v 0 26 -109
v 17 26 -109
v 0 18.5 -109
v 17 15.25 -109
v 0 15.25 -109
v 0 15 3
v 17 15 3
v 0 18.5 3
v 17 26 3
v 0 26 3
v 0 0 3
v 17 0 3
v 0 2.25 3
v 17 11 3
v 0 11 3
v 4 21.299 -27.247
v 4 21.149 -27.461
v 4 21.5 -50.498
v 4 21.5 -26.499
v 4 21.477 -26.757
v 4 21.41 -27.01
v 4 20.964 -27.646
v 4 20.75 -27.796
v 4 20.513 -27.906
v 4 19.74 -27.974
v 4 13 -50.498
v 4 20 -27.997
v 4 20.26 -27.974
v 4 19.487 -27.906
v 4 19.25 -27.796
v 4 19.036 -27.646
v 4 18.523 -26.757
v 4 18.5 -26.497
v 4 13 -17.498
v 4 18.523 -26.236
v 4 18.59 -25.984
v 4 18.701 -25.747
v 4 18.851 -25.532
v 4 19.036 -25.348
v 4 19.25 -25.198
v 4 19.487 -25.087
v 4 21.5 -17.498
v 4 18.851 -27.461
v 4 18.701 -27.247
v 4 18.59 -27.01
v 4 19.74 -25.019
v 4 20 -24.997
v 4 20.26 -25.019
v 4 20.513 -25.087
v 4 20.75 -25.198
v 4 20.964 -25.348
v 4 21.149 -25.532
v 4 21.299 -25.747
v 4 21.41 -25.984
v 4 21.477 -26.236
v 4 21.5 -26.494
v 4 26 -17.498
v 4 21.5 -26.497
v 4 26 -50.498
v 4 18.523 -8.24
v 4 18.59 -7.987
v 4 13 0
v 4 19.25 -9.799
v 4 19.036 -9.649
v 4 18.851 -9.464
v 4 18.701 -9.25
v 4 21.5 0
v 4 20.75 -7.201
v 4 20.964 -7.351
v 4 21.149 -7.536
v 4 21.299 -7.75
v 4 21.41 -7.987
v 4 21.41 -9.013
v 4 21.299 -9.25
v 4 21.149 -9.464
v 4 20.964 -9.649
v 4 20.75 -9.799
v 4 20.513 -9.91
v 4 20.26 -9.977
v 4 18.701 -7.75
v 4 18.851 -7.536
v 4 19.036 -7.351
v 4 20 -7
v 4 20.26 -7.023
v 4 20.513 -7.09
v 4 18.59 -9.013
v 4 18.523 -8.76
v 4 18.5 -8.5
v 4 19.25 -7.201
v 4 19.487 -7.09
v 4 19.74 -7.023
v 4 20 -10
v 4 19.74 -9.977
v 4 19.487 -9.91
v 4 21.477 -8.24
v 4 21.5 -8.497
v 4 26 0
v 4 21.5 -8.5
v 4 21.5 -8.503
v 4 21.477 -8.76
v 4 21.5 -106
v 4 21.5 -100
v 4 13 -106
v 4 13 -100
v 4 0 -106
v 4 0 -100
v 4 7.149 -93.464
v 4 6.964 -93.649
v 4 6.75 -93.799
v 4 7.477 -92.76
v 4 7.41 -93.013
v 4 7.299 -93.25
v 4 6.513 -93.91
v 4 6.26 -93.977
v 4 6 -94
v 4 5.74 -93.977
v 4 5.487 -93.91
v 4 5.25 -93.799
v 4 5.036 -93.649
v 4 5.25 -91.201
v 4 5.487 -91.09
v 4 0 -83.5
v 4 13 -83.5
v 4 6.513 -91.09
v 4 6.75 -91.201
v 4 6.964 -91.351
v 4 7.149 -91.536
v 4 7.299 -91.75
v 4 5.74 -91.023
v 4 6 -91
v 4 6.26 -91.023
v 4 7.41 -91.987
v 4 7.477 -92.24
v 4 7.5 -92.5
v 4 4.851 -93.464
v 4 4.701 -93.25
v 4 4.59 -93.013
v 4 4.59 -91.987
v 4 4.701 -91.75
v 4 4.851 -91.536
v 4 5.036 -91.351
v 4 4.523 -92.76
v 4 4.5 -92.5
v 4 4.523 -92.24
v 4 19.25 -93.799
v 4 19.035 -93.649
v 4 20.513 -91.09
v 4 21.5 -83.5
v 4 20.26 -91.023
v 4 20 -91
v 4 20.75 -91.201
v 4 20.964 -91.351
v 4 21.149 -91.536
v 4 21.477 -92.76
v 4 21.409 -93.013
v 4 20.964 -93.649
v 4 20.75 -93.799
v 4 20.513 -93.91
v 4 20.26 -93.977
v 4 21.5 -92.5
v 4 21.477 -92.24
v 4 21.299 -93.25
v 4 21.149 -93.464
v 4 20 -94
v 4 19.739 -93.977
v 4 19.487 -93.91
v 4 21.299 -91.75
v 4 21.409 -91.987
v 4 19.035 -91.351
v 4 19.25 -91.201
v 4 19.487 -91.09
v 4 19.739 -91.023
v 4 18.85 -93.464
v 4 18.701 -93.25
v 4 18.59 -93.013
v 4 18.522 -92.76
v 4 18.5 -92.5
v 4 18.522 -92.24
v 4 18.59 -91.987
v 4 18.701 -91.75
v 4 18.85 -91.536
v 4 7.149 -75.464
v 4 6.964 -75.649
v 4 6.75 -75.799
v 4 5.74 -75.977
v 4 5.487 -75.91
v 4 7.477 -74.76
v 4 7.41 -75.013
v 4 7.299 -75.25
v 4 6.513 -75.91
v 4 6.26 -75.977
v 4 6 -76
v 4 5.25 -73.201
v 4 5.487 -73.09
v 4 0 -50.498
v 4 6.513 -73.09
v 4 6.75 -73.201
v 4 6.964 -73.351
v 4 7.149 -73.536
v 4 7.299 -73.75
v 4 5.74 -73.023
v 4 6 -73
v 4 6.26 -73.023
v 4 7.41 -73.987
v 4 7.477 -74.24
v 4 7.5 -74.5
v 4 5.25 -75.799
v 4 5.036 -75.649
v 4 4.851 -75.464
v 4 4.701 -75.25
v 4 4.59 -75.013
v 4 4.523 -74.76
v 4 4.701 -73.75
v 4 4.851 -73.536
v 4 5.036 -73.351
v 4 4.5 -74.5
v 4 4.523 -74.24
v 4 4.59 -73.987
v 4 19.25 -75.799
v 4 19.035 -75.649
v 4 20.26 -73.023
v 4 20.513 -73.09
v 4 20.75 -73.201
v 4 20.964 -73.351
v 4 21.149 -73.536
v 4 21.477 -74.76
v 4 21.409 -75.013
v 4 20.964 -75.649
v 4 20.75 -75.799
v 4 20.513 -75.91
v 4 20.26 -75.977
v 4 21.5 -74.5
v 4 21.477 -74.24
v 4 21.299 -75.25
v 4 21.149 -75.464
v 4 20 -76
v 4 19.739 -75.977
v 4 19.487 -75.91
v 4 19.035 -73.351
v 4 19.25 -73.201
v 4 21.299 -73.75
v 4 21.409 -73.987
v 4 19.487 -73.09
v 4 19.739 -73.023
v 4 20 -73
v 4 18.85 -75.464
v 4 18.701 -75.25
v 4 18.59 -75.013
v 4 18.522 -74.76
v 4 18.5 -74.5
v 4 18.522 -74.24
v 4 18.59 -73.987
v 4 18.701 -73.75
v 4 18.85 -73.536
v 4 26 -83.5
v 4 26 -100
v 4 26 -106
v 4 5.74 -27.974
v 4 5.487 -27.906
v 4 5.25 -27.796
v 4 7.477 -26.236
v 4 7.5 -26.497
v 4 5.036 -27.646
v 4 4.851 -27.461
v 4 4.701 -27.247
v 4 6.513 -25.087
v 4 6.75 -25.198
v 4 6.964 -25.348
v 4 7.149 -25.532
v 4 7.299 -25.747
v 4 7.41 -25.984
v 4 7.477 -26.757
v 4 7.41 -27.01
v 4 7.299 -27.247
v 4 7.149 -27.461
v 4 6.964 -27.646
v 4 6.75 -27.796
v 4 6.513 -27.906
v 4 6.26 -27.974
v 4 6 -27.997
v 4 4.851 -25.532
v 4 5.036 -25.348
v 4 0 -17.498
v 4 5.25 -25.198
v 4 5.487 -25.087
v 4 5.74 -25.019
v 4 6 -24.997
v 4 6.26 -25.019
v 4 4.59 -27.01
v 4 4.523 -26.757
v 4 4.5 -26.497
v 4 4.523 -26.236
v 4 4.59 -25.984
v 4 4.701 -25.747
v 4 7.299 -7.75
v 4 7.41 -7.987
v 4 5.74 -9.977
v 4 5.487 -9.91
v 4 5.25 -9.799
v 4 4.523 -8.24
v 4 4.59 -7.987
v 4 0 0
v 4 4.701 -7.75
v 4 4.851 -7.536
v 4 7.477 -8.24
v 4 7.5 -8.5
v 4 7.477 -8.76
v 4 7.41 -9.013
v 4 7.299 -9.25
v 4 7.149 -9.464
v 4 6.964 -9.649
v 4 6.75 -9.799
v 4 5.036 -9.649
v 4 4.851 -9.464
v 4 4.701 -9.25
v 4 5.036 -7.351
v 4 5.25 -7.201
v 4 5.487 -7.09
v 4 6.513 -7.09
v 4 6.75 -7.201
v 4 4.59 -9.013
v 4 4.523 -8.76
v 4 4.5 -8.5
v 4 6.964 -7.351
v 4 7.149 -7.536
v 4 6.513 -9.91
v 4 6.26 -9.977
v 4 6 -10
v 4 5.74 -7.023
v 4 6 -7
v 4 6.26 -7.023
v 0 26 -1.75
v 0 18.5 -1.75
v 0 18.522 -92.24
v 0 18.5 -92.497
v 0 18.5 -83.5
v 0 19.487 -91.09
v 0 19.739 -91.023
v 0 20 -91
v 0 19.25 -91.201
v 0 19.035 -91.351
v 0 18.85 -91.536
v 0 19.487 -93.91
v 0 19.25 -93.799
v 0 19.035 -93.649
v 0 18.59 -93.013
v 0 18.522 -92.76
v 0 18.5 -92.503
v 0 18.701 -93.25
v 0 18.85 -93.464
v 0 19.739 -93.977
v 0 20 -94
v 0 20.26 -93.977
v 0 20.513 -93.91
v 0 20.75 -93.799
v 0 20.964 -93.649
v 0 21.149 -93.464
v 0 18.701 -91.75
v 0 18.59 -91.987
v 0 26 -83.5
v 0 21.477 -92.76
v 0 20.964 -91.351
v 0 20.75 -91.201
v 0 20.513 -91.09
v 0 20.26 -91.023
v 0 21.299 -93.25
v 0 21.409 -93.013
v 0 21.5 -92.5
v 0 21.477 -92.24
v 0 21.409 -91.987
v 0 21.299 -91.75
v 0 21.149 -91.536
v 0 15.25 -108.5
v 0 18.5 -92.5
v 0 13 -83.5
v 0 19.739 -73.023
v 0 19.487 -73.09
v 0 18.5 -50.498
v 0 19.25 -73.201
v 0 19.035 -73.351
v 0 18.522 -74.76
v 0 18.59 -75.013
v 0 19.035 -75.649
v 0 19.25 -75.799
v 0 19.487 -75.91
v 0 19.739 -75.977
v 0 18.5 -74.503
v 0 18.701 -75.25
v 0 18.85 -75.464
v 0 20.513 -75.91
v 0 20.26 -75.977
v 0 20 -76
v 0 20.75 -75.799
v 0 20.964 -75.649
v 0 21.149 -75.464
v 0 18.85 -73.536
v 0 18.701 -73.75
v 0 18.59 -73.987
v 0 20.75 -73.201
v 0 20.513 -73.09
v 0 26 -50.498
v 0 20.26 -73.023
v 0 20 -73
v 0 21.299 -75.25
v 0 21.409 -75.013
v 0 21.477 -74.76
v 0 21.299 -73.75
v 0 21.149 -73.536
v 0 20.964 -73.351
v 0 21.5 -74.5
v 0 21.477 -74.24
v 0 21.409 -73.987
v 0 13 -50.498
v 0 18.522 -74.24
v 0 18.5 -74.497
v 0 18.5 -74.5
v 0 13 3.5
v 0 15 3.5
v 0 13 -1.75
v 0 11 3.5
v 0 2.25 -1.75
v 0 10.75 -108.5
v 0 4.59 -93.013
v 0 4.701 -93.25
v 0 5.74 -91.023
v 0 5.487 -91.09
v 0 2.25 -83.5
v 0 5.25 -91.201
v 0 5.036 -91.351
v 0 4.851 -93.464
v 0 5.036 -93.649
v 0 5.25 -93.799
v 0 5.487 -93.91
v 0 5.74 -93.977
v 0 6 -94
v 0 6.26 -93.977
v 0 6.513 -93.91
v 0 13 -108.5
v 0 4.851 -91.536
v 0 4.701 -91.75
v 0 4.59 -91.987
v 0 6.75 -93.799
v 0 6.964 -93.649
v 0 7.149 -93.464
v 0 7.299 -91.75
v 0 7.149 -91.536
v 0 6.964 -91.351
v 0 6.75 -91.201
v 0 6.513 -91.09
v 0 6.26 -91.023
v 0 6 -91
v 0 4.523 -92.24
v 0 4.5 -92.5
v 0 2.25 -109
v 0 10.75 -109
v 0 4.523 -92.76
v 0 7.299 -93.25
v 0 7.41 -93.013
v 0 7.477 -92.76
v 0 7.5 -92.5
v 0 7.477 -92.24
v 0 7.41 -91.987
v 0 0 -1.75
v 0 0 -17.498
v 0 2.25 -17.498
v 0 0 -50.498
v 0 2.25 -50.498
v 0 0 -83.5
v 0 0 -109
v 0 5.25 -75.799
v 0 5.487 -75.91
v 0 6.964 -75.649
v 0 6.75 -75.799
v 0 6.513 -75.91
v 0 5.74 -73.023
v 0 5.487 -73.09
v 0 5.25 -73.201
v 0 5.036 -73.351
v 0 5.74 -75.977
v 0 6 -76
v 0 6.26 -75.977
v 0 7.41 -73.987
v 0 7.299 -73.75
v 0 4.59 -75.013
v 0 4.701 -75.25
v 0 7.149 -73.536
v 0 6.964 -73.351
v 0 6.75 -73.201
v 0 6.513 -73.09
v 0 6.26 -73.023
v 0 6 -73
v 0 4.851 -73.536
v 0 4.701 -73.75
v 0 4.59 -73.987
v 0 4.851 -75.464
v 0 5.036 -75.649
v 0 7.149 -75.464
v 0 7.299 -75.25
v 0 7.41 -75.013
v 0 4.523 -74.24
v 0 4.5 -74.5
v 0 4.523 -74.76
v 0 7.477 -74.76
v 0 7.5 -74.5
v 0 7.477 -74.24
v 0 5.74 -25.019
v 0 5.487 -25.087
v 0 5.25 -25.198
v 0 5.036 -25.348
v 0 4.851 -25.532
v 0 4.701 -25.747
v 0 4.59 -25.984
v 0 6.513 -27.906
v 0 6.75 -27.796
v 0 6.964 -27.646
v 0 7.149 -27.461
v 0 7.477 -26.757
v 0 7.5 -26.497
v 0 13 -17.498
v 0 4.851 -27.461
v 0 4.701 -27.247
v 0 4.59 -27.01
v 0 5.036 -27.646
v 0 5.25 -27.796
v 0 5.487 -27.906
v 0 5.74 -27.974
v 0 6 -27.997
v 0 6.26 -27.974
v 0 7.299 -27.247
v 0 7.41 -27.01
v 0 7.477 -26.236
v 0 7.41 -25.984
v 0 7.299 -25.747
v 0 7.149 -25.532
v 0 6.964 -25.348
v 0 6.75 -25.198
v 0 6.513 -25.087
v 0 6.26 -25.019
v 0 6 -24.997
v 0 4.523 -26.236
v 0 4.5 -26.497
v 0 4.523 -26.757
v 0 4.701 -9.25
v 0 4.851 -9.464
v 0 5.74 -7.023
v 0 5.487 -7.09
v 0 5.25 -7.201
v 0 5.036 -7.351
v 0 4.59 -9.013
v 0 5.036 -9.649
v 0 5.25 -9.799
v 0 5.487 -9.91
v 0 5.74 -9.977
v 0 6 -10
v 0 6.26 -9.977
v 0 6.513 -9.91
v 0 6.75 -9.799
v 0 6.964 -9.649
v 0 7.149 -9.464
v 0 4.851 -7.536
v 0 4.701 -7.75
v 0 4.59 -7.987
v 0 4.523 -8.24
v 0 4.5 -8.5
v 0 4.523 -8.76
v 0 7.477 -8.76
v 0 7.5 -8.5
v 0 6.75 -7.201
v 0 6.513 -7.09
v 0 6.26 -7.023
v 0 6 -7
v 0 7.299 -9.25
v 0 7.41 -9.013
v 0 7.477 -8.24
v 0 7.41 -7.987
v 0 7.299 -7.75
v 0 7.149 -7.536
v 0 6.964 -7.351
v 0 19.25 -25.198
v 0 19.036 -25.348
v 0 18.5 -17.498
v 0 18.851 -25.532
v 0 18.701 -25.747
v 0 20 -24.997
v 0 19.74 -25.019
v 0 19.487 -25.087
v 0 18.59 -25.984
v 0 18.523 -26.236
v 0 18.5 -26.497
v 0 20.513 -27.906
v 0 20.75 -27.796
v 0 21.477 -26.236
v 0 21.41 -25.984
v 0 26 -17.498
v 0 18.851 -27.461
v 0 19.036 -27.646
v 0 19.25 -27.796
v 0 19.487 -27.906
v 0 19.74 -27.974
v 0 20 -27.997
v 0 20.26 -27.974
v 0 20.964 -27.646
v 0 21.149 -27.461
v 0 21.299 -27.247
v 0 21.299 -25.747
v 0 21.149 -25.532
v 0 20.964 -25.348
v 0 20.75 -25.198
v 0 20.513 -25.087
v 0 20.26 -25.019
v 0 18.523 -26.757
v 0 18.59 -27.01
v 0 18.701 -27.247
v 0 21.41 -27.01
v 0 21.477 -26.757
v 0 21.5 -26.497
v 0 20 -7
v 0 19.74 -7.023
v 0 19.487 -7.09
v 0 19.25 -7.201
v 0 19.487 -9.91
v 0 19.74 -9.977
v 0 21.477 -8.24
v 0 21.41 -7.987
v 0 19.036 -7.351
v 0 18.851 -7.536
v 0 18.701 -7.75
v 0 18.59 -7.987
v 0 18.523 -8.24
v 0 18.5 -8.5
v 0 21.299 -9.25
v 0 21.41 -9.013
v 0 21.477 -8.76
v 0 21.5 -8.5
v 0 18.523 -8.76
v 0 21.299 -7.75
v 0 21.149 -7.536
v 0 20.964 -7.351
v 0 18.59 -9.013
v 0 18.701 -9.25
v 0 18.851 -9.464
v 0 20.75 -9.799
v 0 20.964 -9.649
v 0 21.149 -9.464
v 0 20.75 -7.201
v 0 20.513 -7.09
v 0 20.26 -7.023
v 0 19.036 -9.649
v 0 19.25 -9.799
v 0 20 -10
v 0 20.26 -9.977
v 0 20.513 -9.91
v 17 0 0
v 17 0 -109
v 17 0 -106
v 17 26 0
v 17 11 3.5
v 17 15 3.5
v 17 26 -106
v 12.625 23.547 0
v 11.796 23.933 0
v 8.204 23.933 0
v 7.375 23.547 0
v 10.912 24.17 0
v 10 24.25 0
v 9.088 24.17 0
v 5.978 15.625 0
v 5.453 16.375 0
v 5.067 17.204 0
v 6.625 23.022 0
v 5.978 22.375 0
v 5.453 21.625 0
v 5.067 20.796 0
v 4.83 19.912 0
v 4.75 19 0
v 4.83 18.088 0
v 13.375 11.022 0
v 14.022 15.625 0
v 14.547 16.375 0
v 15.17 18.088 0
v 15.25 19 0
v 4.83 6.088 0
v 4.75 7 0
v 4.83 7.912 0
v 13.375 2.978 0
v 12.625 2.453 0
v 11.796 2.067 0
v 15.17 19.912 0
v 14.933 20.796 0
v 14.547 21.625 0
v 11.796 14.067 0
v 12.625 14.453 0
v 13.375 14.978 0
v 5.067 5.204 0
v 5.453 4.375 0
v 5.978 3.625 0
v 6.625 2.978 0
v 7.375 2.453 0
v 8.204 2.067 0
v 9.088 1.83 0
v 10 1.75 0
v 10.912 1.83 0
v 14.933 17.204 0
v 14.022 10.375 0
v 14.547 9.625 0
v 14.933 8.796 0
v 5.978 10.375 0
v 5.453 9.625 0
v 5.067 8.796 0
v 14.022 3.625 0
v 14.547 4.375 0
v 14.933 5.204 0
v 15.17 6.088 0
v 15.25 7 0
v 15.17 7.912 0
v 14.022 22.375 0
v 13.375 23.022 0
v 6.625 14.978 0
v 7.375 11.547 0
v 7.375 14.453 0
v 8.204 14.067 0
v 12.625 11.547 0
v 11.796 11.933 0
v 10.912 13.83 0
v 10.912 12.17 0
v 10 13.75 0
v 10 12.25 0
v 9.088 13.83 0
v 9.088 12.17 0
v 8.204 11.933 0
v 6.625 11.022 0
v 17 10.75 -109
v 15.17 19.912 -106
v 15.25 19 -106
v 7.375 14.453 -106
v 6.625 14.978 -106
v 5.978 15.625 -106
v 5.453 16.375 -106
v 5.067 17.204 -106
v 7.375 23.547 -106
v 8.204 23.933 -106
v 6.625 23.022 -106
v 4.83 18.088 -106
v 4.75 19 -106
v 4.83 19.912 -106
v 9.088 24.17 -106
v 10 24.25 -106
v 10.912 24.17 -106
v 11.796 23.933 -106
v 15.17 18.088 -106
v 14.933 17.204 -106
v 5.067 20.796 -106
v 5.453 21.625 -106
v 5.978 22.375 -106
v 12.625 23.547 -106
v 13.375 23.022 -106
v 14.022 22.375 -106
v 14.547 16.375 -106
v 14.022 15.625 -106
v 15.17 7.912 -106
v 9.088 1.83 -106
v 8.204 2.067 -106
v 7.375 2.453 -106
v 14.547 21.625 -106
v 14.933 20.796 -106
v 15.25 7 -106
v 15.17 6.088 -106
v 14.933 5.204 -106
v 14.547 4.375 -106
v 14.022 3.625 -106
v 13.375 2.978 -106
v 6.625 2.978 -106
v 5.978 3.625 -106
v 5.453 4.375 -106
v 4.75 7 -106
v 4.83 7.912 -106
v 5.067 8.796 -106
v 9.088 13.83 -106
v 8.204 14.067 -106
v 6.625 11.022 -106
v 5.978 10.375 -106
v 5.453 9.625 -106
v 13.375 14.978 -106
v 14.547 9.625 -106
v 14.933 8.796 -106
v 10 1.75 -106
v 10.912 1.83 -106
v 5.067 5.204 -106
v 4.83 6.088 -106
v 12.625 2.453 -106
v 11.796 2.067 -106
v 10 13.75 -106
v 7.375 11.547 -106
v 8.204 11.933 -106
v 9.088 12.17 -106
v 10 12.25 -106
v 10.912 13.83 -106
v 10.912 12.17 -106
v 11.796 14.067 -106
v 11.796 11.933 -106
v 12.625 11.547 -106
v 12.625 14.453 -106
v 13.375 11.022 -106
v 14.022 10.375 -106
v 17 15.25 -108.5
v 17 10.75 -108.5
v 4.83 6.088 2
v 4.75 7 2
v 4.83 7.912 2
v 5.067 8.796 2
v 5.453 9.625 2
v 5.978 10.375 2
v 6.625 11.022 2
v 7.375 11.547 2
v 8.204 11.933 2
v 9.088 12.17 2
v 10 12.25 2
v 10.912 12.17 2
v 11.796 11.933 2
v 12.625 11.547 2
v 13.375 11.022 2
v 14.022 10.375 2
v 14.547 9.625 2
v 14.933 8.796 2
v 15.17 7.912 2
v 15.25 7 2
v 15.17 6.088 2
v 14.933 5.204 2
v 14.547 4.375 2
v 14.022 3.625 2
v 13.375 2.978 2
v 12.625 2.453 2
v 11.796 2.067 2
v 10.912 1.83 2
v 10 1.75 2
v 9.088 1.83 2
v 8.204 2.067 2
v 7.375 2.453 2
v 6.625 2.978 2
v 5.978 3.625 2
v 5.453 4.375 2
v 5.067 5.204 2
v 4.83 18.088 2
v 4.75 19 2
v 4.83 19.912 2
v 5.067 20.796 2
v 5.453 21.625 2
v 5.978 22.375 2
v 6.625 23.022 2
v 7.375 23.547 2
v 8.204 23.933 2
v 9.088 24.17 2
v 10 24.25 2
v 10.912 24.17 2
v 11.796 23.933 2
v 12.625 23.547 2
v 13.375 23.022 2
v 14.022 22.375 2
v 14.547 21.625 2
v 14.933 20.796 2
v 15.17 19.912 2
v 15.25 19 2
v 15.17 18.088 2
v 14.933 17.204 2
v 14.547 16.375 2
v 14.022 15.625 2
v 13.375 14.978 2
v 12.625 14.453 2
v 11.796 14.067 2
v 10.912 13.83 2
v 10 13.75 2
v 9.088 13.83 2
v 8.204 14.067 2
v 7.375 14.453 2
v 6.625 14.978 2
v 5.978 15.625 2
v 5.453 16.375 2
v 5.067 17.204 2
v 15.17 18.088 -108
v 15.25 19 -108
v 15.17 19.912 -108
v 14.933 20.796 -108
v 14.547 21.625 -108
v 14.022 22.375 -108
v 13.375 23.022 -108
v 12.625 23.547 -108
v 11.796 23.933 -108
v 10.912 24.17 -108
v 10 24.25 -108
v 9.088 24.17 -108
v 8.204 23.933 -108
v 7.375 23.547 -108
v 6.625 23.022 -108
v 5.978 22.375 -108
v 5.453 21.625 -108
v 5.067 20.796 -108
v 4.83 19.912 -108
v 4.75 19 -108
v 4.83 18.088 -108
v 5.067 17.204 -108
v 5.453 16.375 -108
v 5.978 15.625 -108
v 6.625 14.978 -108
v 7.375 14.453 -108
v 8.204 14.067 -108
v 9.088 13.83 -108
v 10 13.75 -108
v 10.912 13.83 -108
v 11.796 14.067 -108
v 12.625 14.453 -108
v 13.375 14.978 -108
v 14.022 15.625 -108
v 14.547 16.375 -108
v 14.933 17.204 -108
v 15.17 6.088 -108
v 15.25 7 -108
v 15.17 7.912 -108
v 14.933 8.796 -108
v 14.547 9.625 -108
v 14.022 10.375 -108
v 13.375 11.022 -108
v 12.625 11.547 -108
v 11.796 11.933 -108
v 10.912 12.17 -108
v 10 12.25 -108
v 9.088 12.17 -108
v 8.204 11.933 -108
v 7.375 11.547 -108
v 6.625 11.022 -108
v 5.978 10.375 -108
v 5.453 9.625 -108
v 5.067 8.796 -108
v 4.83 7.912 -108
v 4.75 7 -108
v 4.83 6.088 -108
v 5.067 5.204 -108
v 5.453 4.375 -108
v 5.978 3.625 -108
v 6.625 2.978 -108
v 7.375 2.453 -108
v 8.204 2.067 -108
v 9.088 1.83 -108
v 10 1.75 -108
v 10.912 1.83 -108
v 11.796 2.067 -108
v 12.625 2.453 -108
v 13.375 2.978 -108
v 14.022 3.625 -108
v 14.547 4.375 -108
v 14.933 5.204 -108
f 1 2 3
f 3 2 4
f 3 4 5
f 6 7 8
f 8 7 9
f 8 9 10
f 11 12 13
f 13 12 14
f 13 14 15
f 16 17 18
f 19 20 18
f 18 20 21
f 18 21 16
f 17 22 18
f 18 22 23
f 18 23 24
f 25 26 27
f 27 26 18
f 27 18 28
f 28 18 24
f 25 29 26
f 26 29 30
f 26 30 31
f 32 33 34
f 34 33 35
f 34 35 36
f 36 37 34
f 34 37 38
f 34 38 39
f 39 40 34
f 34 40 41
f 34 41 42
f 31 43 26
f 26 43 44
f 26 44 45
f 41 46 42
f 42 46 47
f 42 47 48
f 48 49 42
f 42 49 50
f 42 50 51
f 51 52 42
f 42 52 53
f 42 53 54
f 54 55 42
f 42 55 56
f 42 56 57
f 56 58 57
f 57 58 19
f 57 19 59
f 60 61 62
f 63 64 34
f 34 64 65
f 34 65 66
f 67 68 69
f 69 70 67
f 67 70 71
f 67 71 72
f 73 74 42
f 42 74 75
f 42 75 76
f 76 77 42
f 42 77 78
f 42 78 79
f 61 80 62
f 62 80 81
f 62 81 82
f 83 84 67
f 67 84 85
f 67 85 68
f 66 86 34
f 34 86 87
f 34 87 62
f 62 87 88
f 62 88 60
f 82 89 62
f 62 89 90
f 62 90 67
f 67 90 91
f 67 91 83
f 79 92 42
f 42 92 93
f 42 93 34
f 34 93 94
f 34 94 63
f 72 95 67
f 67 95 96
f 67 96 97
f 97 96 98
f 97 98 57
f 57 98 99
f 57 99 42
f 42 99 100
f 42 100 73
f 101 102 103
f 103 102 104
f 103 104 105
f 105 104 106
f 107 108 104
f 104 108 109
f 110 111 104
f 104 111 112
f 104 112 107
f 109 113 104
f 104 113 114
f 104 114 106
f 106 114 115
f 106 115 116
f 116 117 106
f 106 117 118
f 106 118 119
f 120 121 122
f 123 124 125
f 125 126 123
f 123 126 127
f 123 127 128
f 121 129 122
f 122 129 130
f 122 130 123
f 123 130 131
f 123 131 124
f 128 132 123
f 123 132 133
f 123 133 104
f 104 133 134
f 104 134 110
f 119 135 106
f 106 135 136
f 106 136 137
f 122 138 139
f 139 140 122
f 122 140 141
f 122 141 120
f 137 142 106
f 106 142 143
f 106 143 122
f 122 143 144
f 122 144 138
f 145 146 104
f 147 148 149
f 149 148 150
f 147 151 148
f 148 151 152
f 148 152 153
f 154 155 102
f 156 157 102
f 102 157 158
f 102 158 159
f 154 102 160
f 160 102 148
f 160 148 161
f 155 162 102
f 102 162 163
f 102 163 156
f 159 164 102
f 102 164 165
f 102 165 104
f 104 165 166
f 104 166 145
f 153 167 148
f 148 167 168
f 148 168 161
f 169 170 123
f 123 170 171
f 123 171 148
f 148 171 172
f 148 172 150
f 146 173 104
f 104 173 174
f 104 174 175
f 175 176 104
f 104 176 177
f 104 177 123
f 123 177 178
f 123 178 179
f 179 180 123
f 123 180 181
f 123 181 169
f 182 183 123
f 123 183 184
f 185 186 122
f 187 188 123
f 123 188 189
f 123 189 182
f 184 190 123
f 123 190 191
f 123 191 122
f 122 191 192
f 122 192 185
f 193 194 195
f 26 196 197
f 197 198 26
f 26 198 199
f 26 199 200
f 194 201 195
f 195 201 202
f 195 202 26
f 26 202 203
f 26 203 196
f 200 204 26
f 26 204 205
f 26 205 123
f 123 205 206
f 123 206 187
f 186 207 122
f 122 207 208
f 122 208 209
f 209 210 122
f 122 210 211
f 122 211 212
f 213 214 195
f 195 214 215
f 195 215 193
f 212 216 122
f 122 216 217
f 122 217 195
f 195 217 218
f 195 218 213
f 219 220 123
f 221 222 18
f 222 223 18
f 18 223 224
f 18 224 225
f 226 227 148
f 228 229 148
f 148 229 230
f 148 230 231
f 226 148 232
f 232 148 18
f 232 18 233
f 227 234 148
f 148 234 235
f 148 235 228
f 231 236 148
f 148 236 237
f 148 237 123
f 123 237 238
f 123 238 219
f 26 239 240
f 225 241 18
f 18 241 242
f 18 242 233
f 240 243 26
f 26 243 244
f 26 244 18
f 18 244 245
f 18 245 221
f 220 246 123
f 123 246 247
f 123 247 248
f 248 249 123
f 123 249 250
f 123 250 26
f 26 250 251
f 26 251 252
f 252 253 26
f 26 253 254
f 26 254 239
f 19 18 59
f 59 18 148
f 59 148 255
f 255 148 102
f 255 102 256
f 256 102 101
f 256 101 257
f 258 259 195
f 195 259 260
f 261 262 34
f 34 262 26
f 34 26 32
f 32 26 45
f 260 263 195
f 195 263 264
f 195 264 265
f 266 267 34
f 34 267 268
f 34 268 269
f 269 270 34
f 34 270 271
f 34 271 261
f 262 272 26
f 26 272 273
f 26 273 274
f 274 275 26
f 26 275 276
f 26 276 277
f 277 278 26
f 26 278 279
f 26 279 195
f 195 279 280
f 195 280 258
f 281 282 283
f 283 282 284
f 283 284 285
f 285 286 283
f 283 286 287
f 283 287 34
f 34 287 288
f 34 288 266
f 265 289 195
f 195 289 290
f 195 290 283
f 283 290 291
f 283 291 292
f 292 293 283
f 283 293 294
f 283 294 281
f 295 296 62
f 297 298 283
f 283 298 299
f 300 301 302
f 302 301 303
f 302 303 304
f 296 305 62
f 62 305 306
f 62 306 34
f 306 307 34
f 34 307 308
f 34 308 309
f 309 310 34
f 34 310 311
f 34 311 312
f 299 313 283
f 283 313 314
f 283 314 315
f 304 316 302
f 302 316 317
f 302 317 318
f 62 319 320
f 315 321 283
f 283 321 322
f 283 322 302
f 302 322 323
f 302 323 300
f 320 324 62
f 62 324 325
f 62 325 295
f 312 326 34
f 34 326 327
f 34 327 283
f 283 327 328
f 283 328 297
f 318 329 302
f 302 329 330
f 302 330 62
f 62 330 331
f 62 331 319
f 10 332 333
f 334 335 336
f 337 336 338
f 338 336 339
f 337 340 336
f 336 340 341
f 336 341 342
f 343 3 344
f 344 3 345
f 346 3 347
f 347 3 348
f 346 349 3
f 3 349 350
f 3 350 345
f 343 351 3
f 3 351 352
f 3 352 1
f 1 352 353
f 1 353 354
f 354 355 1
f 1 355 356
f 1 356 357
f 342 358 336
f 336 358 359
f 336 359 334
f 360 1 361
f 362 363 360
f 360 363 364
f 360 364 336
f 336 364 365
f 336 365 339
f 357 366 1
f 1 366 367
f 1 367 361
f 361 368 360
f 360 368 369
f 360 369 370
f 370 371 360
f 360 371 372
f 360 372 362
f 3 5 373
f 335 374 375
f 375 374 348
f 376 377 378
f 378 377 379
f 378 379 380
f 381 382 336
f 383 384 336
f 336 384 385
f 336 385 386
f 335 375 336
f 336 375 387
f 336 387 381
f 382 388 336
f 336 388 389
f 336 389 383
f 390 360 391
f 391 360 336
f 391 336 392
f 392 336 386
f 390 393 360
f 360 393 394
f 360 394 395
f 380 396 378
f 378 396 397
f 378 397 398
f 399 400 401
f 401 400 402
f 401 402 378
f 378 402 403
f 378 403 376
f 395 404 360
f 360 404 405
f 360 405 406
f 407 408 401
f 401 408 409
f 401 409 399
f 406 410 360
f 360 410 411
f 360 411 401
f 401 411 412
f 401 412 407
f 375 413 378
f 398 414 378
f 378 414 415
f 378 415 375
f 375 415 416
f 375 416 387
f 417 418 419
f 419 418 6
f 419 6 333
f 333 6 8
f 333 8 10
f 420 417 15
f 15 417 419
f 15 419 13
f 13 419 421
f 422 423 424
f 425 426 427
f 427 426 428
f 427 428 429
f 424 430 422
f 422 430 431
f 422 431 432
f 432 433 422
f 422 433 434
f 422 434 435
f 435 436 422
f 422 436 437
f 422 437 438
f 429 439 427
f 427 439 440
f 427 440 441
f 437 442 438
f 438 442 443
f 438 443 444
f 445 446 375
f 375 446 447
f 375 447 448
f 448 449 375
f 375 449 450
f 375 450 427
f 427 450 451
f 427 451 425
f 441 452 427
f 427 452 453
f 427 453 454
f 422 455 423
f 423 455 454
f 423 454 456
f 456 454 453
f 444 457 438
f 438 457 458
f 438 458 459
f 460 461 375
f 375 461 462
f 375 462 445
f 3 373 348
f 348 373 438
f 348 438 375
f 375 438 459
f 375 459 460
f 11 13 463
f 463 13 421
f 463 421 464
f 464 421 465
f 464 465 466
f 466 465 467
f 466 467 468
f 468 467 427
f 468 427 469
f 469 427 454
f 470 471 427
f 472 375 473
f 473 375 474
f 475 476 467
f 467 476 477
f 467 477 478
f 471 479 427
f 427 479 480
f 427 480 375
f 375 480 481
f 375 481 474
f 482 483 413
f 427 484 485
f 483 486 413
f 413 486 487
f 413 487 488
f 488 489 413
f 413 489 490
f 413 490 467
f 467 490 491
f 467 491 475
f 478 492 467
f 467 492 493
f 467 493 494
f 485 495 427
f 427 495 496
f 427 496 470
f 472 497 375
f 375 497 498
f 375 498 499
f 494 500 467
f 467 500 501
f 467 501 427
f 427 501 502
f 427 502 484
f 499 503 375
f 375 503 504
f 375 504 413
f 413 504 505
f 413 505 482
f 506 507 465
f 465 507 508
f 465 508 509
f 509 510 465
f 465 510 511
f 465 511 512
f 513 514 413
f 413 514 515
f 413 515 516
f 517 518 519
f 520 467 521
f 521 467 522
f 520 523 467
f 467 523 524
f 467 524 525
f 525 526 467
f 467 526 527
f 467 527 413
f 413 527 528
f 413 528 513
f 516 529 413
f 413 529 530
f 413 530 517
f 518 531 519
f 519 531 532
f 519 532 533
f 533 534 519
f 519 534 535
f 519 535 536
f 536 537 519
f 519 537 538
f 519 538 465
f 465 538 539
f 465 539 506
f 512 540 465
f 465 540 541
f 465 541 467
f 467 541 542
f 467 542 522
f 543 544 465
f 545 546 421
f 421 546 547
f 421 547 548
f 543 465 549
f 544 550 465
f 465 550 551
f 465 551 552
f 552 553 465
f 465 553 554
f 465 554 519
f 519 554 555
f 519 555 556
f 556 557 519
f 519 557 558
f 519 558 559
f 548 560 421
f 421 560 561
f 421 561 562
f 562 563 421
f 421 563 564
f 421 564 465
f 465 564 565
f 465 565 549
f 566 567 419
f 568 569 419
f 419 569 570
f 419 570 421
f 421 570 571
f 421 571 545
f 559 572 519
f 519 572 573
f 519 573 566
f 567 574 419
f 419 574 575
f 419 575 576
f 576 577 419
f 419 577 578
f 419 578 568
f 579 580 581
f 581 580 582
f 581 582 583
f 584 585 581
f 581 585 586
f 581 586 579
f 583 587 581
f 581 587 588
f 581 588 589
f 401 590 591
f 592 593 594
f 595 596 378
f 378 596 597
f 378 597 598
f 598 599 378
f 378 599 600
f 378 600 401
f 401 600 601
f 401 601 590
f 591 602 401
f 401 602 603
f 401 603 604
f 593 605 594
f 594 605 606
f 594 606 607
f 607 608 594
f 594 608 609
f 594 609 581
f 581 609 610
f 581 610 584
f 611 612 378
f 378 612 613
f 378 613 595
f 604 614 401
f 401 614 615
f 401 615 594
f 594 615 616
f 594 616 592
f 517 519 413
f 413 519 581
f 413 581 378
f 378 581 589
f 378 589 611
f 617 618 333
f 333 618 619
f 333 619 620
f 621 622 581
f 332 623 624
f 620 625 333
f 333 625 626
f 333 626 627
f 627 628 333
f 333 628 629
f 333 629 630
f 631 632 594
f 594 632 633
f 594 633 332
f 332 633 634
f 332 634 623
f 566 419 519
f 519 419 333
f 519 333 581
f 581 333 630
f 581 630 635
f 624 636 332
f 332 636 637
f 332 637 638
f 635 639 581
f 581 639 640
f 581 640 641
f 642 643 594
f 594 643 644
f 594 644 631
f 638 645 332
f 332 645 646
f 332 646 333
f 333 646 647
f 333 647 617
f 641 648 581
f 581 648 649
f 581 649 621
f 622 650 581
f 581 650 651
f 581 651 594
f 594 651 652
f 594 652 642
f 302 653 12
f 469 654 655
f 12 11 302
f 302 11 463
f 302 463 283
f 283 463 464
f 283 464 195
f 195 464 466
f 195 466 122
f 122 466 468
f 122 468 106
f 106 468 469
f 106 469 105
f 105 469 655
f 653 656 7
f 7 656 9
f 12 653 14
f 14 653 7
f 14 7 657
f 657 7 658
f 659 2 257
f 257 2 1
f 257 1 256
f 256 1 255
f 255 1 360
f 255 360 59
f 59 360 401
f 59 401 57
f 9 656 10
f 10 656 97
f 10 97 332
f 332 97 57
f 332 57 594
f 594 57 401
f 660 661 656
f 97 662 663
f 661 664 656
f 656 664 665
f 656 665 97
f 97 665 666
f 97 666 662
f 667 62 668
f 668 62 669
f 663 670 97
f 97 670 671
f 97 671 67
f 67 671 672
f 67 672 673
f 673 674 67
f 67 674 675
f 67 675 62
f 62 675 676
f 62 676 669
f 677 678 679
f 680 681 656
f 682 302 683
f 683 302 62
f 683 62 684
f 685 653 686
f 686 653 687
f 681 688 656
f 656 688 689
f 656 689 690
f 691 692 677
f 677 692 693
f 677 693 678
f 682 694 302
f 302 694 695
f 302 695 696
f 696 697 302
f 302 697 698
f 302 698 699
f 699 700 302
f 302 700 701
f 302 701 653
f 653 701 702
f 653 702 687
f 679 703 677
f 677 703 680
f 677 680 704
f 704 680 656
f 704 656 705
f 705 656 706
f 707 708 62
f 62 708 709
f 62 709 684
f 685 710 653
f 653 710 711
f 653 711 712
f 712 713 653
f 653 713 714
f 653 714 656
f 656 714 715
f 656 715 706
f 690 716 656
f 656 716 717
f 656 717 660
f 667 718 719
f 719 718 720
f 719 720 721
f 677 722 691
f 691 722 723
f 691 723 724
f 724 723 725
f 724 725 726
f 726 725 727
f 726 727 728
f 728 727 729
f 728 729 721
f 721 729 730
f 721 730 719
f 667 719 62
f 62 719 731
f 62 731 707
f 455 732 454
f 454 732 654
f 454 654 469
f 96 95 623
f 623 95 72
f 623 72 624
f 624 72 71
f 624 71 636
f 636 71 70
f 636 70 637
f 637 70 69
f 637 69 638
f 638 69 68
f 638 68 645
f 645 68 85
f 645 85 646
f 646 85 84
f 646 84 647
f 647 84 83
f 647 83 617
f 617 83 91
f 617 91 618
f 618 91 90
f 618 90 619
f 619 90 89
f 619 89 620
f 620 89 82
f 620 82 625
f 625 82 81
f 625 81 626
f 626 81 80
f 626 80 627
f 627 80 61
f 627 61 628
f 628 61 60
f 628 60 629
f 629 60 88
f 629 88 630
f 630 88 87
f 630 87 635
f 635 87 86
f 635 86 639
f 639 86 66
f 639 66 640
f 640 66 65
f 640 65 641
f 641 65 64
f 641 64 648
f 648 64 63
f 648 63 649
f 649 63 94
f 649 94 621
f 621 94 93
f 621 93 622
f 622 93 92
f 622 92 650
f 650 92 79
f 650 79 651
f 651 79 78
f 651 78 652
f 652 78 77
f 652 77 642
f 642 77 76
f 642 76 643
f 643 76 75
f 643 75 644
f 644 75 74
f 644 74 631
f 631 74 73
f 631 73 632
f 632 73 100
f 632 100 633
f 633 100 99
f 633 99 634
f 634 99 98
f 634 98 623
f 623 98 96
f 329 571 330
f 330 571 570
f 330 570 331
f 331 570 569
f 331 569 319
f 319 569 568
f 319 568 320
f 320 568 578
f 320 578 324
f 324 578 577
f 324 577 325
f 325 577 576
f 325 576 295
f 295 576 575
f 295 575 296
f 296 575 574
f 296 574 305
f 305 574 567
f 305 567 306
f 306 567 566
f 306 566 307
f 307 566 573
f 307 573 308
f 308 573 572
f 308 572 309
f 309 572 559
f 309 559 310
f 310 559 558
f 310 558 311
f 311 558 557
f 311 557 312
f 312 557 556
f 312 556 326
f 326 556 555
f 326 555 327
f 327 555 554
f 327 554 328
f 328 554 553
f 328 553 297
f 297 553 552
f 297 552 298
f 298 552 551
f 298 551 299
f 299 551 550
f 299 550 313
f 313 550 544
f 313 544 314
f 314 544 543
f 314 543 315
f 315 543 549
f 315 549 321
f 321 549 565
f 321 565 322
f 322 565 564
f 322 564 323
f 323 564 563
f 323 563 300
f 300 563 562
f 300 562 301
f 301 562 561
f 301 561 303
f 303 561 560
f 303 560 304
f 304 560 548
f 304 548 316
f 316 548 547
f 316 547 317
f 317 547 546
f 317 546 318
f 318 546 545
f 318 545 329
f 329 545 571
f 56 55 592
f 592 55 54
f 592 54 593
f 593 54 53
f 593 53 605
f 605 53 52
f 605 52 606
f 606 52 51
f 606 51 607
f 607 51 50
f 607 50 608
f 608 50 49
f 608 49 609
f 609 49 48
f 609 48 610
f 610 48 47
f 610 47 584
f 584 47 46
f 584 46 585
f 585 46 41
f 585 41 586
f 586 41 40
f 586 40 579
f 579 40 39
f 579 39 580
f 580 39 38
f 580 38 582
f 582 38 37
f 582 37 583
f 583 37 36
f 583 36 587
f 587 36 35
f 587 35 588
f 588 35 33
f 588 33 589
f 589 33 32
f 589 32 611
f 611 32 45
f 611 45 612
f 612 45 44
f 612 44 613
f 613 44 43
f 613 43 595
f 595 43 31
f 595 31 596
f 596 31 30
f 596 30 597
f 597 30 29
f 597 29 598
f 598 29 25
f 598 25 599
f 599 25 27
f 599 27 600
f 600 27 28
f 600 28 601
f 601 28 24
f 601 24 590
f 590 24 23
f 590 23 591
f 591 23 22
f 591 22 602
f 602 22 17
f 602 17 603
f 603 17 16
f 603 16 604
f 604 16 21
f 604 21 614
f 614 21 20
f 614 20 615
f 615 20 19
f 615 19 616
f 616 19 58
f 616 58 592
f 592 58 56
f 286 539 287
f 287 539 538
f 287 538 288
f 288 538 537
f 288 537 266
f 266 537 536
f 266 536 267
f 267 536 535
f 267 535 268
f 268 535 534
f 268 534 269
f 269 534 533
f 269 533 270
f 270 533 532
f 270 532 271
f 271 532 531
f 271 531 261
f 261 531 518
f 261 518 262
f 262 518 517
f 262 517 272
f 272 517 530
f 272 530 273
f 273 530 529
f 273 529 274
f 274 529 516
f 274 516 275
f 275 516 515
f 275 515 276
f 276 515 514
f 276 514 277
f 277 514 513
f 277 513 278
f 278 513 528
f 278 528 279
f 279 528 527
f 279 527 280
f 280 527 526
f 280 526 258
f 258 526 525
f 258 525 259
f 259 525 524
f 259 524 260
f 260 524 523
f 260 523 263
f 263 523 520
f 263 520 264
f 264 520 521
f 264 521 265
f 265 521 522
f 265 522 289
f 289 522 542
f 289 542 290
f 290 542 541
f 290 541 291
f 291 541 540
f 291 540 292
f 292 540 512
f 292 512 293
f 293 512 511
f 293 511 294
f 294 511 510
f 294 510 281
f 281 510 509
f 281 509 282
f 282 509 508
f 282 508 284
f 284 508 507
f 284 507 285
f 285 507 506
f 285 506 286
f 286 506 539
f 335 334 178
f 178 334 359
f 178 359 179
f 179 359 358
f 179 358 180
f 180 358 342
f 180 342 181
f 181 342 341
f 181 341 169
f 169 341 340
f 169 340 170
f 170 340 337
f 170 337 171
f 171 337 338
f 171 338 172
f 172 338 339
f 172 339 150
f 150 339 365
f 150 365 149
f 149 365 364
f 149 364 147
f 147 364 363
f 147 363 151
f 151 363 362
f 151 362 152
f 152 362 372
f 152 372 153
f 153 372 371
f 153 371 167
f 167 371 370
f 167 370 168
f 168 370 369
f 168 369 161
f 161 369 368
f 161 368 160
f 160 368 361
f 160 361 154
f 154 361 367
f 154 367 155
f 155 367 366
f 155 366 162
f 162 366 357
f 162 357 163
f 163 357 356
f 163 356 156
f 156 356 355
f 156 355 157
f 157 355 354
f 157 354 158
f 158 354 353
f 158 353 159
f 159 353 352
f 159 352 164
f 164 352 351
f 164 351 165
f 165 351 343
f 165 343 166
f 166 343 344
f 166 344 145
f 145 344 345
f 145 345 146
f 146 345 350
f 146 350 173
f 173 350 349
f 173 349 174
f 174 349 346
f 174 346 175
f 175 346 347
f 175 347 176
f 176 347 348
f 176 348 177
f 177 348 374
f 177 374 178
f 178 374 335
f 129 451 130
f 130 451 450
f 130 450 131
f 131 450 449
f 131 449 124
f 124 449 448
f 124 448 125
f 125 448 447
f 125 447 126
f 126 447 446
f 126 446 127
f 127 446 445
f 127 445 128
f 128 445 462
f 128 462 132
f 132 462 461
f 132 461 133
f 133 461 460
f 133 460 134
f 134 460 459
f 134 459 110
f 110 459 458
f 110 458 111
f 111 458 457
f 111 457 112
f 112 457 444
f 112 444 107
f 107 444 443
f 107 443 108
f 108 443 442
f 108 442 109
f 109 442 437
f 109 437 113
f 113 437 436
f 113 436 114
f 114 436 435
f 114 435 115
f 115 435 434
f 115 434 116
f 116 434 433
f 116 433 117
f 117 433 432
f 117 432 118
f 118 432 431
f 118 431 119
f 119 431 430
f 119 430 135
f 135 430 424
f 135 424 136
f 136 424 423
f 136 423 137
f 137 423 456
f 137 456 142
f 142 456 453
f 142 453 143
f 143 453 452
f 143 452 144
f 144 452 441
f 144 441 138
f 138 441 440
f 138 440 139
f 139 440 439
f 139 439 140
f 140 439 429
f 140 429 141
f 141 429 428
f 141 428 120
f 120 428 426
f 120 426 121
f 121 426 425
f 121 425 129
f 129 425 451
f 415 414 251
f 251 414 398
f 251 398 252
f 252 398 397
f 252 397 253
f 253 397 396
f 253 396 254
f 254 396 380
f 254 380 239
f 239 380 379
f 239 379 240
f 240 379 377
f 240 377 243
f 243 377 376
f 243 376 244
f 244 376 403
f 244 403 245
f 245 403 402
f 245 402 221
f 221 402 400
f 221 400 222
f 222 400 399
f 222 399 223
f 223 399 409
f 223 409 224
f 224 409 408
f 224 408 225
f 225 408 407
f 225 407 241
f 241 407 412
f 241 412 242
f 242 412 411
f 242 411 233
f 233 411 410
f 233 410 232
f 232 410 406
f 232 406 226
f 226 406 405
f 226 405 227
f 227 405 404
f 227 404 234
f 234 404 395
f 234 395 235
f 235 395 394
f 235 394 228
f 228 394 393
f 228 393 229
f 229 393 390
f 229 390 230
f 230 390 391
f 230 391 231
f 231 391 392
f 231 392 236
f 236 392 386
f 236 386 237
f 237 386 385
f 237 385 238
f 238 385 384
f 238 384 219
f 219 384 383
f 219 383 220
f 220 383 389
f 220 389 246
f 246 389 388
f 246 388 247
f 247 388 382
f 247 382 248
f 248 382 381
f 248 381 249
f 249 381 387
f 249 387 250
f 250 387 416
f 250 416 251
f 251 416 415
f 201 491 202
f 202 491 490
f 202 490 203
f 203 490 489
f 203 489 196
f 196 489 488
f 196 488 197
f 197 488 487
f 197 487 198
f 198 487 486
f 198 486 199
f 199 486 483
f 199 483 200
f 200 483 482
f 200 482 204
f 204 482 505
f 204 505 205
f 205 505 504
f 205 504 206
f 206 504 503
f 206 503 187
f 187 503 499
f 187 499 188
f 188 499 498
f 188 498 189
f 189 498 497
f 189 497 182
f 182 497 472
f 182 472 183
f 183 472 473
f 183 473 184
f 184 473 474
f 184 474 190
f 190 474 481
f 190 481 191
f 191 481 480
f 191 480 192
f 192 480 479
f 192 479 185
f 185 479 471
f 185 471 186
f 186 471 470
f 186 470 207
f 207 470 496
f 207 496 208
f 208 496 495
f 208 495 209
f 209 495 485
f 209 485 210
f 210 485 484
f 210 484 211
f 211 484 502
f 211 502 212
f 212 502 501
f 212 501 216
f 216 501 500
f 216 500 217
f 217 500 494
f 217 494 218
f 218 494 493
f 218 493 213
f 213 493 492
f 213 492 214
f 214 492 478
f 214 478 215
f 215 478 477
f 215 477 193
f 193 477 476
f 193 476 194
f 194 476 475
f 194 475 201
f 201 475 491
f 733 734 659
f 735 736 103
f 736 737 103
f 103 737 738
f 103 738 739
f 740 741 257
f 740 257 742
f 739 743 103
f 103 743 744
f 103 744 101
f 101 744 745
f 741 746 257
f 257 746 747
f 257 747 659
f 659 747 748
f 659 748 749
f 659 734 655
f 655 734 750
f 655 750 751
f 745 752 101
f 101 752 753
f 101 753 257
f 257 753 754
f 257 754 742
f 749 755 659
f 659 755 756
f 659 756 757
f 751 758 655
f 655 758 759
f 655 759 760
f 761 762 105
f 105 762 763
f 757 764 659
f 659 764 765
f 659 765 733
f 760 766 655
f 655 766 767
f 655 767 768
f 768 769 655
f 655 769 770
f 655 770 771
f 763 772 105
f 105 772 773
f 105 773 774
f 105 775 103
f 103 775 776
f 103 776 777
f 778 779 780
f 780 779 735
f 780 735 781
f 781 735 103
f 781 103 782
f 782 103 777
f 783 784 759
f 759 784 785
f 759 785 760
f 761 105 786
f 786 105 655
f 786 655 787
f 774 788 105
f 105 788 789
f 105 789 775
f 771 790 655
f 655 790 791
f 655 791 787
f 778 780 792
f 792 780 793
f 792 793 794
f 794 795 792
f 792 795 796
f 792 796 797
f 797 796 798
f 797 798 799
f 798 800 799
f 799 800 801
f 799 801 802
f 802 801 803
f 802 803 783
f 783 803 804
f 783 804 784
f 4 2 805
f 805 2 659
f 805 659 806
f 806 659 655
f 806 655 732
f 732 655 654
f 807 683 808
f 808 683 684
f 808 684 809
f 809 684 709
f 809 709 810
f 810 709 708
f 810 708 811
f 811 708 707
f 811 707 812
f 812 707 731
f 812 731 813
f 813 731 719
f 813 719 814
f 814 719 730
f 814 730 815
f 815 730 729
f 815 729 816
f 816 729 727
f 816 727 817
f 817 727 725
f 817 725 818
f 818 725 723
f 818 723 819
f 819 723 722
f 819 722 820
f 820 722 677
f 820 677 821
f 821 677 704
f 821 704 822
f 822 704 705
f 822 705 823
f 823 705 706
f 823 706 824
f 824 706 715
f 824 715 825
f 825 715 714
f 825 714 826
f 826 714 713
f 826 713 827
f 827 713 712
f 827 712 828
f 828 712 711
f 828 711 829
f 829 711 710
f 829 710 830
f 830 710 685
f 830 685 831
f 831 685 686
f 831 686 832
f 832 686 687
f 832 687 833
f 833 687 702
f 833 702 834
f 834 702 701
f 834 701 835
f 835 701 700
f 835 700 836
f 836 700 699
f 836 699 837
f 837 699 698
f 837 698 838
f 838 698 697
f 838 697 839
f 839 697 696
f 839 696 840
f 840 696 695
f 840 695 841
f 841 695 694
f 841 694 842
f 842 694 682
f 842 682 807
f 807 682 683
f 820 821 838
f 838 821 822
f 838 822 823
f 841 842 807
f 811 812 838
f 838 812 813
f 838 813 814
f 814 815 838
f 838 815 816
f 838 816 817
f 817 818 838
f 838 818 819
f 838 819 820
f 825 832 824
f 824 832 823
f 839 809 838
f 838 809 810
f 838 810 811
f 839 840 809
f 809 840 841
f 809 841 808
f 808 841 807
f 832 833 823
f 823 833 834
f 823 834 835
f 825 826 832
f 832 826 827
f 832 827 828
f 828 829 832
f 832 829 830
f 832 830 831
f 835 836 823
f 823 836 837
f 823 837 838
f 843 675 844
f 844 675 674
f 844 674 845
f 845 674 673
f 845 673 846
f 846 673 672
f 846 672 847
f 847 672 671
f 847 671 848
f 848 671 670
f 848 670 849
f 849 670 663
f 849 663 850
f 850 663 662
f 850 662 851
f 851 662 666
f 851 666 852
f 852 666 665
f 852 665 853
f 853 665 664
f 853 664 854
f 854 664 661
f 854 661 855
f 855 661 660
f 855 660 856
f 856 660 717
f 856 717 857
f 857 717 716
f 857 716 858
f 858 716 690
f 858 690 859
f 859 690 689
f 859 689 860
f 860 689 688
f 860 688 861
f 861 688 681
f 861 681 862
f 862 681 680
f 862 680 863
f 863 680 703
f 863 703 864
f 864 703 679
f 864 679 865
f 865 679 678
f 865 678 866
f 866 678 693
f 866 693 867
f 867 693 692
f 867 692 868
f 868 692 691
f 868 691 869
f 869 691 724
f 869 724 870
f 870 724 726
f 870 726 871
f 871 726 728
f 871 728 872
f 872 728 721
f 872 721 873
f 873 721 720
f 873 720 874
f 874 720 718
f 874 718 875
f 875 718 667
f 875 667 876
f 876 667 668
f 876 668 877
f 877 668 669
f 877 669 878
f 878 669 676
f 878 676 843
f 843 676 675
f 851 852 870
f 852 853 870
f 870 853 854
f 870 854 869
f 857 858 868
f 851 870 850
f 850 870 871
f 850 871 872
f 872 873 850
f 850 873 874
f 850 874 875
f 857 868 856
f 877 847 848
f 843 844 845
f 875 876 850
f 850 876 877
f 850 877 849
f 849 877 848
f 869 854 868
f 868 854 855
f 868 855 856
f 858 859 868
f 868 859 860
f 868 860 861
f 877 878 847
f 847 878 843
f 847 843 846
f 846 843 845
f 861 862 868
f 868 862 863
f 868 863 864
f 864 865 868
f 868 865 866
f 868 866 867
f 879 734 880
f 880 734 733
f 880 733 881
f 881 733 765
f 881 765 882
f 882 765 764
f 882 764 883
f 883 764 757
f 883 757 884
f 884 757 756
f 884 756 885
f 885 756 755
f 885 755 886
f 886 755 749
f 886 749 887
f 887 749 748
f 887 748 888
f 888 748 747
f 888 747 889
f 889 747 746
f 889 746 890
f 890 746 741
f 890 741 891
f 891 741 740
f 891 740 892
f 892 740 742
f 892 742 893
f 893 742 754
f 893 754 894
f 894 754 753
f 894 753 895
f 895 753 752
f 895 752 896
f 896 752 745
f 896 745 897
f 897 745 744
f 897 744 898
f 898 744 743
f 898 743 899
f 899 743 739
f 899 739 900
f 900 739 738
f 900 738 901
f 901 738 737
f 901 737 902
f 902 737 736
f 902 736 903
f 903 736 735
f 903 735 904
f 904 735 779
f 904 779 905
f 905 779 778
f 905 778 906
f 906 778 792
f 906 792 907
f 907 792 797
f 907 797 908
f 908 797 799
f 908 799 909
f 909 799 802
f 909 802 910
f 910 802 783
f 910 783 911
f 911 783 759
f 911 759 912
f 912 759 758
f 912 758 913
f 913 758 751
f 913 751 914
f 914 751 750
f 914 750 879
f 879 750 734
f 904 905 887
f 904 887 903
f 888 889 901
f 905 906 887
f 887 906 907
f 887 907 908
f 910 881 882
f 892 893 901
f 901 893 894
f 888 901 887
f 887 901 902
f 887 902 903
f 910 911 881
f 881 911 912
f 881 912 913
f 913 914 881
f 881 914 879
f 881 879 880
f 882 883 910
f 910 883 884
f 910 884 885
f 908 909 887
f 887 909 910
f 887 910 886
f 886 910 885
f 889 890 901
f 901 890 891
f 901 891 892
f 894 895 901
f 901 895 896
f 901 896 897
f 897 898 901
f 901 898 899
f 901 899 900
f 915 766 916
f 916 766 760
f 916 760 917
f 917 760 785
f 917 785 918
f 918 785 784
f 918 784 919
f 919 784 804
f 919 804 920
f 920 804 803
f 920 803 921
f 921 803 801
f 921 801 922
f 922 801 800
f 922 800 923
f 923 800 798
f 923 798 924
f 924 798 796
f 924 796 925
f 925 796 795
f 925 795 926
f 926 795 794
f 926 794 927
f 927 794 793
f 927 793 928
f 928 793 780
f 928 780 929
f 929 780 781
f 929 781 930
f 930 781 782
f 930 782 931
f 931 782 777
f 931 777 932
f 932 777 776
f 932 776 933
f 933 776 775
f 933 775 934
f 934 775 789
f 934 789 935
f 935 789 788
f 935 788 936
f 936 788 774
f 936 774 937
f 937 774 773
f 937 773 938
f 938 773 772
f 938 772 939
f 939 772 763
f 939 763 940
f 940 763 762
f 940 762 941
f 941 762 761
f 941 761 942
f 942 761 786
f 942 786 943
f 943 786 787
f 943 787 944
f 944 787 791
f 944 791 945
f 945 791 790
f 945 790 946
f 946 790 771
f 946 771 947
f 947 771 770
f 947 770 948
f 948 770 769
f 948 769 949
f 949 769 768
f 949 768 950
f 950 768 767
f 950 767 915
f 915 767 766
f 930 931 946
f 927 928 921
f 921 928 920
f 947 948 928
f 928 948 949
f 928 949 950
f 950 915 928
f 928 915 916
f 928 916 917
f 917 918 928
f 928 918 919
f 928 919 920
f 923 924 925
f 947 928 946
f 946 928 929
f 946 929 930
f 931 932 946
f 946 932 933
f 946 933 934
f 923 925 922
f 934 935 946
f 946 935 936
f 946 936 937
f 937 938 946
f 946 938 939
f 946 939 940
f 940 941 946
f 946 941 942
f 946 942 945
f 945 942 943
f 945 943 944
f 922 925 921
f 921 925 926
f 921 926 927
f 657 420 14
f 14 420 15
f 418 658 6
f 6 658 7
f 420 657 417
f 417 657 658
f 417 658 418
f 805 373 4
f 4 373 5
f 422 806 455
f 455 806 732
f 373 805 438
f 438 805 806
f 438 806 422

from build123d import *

# Parameters (mm, degrees)
ESQUISSE1_W             = 17
ESQUISSE1_H             = 26
BOSS_EXTRU_1_DEPTH      = 3
ESQUISSE3_W             = 4
ESQUISSE3_H             = 26
BOSS_EXTRU_2_DEPTH      = 109
ESQUISSE4_R             = 1.5
ENL_V_MAT_EXTRU_2_DEPTH = 4
ESQUISSE5_R             = 1.5
ENL_V_MAT_EXTRU_3_DEPTH = 4
ESQUISSE6_W             = 3
ESQUISSE6_H             = 26
BOSS_EXTRU_3_DEPTH      = 13
ESQUISSE8_R             = 5.25
ENL_V_MAT_EXTRU_4_DEPTH = 2
ENL_V_START             = -2
ESQUISSE9_R             = 5.25
ENL_V_MAT_EXTRU_5_DEPTH = 2
ESQUISSE10_W            = 17
ESQUISSE10_H            = 4
BOSS_EXTRU_5_DEPTH      = 0.5
ESQUISSE11_W            = 17
ESQUISSE11_H            = 4.5
ENL_V_MAT_EXTRU_6_DEPTH = 0.5


with BuildPart() as part:
    # Esquisse1 → Boss.-Extru.1 (new body)
    with BuildSketch(Plane.XY):
        with Locations((8.5, 13)):
            Rectangle(ESQUISSE1_W, ESQUISSE1_H)
    extrude(amount=BOSS_EXTRU_1_DEPTH)

    # Esquisse3 → Boss.-Extru.2 (add)
    with BuildSketch(Plane(origin=(0, 0, 0), x_dir=(-1, 0, 0), z_dir=(0, 0, -1))):
        with Locations((-2, 13)):
            Rectangle(ESQUISSE3_W, ESQUISSE3_H)
    extrude(amount=BOSS_EXTRU_2_DEPTH)

    # Esquisse4 → Enlèv. mat.-Extru.2 (cut)
    with BuildSketch(Plane.ZY):
        with Locations((-8.5, 20)):
            Circle(ESQUISSE4_R)
        with Locations((-8.5, 6)):
            Circle(ESQUISSE4_R)
        with Locations((-26.496682549, 20)):
            Circle(ESQUISSE4_R)
        with Locations((-26.496682549, 6)):
            Circle(ESQUISSE4_R)
    extrude(amount=-ENL_V_MAT_EXTRU_2_DEPTH, mode=Mode.SUBTRACT)

    # Esquisse5 → Enlèv. mat.-Extru.3 (cut)
    with BuildSketch(Plane.ZY):
        with Locations((-92.5, 19.999545392)):
            Circle(ESQUISSE5_R)
        with Locations((-92.5, 6)):
            Circle(ESQUISSE5_R)
        with Locations((-74.5, 19.999545392)):
            Circle(ESQUISSE5_R)
        with Locations((-74.5, 6)):
            Circle(ESQUISSE5_R)
    extrude(amount=-ENL_V_MAT_EXTRU_3_DEPTH, mode=Mode.SUBTRACT)

    # Esquisse6 → Boss.-Extru.3 (add)
    with BuildSketch(Plane(origin=(4, 0, 0), x_dir=(0, 0, -1), z_dir=(1, 0, 0))):
        with Locations((107.5, 13)):
            Rectangle(ESQUISSE6_W, ESQUISSE6_H)
    extrude(amount=BOSS_EXTRU_3_DEPTH)

    # Esquisse8 → Enlèv. mat.-Extru.4 (cut)
    with BuildSketch(Plane(origin=(0, 0, 0), x_dir=(-1, 0, 0), z_dir=(0, 0, -1))):
        with Locations((-10, 7)):
            Circle(ESQUISSE8_R)
        with Locations((-10, 19)):
            Circle(ESQUISSE8_R)
    extrude(amount=-ENL_V_MAT_EXTRU_4_DEPTH, mode=Mode.SUBTRACT)

    # Esquisse9 → Enlèv. mat.-Extru.5 (cut)
    with BuildSketch(Plane.XY.offset(-106).offset(ENL_V_START)):
        with Locations(Location((10, 19, 0), (0, 0, 180))):
            Circle(ESQUISSE9_R)
        with Locations(Location((10, 7, 0), (0, 0, 180))):
            Circle(ESQUISSE9_R)
    extrude(amount=ENL_V_MAT_EXTRU_5_DEPTH, mode=Mode.SUBTRACT)

    # Esquisse10 → Boss.-Extru.5 (add)
    with BuildSketch(Plane.XY.offset(3)):
        with Locations((8.5, 13)):
            Rectangle(ESQUISSE10_W, ESQUISSE10_H)
    extrude(amount=BOSS_EXTRU_5_DEPTH)

    # Esquisse11 → Enlèv. mat.-Extru.6 (cut)
    with BuildSketch(Plane(origin=(0, 0, -109), x_dir=(-1, 0, 0), z_dir=(0, 0, -1))):
        with Locations((-8.5, 13)):
            Rectangle(ESQUISSE11_W, ESQUISSE11_H)
    extrude(amount=-ENL_V_MAT_EXTRU_6_DEPTH, mode=Mode.SUBTRACT)


solid = part.part
